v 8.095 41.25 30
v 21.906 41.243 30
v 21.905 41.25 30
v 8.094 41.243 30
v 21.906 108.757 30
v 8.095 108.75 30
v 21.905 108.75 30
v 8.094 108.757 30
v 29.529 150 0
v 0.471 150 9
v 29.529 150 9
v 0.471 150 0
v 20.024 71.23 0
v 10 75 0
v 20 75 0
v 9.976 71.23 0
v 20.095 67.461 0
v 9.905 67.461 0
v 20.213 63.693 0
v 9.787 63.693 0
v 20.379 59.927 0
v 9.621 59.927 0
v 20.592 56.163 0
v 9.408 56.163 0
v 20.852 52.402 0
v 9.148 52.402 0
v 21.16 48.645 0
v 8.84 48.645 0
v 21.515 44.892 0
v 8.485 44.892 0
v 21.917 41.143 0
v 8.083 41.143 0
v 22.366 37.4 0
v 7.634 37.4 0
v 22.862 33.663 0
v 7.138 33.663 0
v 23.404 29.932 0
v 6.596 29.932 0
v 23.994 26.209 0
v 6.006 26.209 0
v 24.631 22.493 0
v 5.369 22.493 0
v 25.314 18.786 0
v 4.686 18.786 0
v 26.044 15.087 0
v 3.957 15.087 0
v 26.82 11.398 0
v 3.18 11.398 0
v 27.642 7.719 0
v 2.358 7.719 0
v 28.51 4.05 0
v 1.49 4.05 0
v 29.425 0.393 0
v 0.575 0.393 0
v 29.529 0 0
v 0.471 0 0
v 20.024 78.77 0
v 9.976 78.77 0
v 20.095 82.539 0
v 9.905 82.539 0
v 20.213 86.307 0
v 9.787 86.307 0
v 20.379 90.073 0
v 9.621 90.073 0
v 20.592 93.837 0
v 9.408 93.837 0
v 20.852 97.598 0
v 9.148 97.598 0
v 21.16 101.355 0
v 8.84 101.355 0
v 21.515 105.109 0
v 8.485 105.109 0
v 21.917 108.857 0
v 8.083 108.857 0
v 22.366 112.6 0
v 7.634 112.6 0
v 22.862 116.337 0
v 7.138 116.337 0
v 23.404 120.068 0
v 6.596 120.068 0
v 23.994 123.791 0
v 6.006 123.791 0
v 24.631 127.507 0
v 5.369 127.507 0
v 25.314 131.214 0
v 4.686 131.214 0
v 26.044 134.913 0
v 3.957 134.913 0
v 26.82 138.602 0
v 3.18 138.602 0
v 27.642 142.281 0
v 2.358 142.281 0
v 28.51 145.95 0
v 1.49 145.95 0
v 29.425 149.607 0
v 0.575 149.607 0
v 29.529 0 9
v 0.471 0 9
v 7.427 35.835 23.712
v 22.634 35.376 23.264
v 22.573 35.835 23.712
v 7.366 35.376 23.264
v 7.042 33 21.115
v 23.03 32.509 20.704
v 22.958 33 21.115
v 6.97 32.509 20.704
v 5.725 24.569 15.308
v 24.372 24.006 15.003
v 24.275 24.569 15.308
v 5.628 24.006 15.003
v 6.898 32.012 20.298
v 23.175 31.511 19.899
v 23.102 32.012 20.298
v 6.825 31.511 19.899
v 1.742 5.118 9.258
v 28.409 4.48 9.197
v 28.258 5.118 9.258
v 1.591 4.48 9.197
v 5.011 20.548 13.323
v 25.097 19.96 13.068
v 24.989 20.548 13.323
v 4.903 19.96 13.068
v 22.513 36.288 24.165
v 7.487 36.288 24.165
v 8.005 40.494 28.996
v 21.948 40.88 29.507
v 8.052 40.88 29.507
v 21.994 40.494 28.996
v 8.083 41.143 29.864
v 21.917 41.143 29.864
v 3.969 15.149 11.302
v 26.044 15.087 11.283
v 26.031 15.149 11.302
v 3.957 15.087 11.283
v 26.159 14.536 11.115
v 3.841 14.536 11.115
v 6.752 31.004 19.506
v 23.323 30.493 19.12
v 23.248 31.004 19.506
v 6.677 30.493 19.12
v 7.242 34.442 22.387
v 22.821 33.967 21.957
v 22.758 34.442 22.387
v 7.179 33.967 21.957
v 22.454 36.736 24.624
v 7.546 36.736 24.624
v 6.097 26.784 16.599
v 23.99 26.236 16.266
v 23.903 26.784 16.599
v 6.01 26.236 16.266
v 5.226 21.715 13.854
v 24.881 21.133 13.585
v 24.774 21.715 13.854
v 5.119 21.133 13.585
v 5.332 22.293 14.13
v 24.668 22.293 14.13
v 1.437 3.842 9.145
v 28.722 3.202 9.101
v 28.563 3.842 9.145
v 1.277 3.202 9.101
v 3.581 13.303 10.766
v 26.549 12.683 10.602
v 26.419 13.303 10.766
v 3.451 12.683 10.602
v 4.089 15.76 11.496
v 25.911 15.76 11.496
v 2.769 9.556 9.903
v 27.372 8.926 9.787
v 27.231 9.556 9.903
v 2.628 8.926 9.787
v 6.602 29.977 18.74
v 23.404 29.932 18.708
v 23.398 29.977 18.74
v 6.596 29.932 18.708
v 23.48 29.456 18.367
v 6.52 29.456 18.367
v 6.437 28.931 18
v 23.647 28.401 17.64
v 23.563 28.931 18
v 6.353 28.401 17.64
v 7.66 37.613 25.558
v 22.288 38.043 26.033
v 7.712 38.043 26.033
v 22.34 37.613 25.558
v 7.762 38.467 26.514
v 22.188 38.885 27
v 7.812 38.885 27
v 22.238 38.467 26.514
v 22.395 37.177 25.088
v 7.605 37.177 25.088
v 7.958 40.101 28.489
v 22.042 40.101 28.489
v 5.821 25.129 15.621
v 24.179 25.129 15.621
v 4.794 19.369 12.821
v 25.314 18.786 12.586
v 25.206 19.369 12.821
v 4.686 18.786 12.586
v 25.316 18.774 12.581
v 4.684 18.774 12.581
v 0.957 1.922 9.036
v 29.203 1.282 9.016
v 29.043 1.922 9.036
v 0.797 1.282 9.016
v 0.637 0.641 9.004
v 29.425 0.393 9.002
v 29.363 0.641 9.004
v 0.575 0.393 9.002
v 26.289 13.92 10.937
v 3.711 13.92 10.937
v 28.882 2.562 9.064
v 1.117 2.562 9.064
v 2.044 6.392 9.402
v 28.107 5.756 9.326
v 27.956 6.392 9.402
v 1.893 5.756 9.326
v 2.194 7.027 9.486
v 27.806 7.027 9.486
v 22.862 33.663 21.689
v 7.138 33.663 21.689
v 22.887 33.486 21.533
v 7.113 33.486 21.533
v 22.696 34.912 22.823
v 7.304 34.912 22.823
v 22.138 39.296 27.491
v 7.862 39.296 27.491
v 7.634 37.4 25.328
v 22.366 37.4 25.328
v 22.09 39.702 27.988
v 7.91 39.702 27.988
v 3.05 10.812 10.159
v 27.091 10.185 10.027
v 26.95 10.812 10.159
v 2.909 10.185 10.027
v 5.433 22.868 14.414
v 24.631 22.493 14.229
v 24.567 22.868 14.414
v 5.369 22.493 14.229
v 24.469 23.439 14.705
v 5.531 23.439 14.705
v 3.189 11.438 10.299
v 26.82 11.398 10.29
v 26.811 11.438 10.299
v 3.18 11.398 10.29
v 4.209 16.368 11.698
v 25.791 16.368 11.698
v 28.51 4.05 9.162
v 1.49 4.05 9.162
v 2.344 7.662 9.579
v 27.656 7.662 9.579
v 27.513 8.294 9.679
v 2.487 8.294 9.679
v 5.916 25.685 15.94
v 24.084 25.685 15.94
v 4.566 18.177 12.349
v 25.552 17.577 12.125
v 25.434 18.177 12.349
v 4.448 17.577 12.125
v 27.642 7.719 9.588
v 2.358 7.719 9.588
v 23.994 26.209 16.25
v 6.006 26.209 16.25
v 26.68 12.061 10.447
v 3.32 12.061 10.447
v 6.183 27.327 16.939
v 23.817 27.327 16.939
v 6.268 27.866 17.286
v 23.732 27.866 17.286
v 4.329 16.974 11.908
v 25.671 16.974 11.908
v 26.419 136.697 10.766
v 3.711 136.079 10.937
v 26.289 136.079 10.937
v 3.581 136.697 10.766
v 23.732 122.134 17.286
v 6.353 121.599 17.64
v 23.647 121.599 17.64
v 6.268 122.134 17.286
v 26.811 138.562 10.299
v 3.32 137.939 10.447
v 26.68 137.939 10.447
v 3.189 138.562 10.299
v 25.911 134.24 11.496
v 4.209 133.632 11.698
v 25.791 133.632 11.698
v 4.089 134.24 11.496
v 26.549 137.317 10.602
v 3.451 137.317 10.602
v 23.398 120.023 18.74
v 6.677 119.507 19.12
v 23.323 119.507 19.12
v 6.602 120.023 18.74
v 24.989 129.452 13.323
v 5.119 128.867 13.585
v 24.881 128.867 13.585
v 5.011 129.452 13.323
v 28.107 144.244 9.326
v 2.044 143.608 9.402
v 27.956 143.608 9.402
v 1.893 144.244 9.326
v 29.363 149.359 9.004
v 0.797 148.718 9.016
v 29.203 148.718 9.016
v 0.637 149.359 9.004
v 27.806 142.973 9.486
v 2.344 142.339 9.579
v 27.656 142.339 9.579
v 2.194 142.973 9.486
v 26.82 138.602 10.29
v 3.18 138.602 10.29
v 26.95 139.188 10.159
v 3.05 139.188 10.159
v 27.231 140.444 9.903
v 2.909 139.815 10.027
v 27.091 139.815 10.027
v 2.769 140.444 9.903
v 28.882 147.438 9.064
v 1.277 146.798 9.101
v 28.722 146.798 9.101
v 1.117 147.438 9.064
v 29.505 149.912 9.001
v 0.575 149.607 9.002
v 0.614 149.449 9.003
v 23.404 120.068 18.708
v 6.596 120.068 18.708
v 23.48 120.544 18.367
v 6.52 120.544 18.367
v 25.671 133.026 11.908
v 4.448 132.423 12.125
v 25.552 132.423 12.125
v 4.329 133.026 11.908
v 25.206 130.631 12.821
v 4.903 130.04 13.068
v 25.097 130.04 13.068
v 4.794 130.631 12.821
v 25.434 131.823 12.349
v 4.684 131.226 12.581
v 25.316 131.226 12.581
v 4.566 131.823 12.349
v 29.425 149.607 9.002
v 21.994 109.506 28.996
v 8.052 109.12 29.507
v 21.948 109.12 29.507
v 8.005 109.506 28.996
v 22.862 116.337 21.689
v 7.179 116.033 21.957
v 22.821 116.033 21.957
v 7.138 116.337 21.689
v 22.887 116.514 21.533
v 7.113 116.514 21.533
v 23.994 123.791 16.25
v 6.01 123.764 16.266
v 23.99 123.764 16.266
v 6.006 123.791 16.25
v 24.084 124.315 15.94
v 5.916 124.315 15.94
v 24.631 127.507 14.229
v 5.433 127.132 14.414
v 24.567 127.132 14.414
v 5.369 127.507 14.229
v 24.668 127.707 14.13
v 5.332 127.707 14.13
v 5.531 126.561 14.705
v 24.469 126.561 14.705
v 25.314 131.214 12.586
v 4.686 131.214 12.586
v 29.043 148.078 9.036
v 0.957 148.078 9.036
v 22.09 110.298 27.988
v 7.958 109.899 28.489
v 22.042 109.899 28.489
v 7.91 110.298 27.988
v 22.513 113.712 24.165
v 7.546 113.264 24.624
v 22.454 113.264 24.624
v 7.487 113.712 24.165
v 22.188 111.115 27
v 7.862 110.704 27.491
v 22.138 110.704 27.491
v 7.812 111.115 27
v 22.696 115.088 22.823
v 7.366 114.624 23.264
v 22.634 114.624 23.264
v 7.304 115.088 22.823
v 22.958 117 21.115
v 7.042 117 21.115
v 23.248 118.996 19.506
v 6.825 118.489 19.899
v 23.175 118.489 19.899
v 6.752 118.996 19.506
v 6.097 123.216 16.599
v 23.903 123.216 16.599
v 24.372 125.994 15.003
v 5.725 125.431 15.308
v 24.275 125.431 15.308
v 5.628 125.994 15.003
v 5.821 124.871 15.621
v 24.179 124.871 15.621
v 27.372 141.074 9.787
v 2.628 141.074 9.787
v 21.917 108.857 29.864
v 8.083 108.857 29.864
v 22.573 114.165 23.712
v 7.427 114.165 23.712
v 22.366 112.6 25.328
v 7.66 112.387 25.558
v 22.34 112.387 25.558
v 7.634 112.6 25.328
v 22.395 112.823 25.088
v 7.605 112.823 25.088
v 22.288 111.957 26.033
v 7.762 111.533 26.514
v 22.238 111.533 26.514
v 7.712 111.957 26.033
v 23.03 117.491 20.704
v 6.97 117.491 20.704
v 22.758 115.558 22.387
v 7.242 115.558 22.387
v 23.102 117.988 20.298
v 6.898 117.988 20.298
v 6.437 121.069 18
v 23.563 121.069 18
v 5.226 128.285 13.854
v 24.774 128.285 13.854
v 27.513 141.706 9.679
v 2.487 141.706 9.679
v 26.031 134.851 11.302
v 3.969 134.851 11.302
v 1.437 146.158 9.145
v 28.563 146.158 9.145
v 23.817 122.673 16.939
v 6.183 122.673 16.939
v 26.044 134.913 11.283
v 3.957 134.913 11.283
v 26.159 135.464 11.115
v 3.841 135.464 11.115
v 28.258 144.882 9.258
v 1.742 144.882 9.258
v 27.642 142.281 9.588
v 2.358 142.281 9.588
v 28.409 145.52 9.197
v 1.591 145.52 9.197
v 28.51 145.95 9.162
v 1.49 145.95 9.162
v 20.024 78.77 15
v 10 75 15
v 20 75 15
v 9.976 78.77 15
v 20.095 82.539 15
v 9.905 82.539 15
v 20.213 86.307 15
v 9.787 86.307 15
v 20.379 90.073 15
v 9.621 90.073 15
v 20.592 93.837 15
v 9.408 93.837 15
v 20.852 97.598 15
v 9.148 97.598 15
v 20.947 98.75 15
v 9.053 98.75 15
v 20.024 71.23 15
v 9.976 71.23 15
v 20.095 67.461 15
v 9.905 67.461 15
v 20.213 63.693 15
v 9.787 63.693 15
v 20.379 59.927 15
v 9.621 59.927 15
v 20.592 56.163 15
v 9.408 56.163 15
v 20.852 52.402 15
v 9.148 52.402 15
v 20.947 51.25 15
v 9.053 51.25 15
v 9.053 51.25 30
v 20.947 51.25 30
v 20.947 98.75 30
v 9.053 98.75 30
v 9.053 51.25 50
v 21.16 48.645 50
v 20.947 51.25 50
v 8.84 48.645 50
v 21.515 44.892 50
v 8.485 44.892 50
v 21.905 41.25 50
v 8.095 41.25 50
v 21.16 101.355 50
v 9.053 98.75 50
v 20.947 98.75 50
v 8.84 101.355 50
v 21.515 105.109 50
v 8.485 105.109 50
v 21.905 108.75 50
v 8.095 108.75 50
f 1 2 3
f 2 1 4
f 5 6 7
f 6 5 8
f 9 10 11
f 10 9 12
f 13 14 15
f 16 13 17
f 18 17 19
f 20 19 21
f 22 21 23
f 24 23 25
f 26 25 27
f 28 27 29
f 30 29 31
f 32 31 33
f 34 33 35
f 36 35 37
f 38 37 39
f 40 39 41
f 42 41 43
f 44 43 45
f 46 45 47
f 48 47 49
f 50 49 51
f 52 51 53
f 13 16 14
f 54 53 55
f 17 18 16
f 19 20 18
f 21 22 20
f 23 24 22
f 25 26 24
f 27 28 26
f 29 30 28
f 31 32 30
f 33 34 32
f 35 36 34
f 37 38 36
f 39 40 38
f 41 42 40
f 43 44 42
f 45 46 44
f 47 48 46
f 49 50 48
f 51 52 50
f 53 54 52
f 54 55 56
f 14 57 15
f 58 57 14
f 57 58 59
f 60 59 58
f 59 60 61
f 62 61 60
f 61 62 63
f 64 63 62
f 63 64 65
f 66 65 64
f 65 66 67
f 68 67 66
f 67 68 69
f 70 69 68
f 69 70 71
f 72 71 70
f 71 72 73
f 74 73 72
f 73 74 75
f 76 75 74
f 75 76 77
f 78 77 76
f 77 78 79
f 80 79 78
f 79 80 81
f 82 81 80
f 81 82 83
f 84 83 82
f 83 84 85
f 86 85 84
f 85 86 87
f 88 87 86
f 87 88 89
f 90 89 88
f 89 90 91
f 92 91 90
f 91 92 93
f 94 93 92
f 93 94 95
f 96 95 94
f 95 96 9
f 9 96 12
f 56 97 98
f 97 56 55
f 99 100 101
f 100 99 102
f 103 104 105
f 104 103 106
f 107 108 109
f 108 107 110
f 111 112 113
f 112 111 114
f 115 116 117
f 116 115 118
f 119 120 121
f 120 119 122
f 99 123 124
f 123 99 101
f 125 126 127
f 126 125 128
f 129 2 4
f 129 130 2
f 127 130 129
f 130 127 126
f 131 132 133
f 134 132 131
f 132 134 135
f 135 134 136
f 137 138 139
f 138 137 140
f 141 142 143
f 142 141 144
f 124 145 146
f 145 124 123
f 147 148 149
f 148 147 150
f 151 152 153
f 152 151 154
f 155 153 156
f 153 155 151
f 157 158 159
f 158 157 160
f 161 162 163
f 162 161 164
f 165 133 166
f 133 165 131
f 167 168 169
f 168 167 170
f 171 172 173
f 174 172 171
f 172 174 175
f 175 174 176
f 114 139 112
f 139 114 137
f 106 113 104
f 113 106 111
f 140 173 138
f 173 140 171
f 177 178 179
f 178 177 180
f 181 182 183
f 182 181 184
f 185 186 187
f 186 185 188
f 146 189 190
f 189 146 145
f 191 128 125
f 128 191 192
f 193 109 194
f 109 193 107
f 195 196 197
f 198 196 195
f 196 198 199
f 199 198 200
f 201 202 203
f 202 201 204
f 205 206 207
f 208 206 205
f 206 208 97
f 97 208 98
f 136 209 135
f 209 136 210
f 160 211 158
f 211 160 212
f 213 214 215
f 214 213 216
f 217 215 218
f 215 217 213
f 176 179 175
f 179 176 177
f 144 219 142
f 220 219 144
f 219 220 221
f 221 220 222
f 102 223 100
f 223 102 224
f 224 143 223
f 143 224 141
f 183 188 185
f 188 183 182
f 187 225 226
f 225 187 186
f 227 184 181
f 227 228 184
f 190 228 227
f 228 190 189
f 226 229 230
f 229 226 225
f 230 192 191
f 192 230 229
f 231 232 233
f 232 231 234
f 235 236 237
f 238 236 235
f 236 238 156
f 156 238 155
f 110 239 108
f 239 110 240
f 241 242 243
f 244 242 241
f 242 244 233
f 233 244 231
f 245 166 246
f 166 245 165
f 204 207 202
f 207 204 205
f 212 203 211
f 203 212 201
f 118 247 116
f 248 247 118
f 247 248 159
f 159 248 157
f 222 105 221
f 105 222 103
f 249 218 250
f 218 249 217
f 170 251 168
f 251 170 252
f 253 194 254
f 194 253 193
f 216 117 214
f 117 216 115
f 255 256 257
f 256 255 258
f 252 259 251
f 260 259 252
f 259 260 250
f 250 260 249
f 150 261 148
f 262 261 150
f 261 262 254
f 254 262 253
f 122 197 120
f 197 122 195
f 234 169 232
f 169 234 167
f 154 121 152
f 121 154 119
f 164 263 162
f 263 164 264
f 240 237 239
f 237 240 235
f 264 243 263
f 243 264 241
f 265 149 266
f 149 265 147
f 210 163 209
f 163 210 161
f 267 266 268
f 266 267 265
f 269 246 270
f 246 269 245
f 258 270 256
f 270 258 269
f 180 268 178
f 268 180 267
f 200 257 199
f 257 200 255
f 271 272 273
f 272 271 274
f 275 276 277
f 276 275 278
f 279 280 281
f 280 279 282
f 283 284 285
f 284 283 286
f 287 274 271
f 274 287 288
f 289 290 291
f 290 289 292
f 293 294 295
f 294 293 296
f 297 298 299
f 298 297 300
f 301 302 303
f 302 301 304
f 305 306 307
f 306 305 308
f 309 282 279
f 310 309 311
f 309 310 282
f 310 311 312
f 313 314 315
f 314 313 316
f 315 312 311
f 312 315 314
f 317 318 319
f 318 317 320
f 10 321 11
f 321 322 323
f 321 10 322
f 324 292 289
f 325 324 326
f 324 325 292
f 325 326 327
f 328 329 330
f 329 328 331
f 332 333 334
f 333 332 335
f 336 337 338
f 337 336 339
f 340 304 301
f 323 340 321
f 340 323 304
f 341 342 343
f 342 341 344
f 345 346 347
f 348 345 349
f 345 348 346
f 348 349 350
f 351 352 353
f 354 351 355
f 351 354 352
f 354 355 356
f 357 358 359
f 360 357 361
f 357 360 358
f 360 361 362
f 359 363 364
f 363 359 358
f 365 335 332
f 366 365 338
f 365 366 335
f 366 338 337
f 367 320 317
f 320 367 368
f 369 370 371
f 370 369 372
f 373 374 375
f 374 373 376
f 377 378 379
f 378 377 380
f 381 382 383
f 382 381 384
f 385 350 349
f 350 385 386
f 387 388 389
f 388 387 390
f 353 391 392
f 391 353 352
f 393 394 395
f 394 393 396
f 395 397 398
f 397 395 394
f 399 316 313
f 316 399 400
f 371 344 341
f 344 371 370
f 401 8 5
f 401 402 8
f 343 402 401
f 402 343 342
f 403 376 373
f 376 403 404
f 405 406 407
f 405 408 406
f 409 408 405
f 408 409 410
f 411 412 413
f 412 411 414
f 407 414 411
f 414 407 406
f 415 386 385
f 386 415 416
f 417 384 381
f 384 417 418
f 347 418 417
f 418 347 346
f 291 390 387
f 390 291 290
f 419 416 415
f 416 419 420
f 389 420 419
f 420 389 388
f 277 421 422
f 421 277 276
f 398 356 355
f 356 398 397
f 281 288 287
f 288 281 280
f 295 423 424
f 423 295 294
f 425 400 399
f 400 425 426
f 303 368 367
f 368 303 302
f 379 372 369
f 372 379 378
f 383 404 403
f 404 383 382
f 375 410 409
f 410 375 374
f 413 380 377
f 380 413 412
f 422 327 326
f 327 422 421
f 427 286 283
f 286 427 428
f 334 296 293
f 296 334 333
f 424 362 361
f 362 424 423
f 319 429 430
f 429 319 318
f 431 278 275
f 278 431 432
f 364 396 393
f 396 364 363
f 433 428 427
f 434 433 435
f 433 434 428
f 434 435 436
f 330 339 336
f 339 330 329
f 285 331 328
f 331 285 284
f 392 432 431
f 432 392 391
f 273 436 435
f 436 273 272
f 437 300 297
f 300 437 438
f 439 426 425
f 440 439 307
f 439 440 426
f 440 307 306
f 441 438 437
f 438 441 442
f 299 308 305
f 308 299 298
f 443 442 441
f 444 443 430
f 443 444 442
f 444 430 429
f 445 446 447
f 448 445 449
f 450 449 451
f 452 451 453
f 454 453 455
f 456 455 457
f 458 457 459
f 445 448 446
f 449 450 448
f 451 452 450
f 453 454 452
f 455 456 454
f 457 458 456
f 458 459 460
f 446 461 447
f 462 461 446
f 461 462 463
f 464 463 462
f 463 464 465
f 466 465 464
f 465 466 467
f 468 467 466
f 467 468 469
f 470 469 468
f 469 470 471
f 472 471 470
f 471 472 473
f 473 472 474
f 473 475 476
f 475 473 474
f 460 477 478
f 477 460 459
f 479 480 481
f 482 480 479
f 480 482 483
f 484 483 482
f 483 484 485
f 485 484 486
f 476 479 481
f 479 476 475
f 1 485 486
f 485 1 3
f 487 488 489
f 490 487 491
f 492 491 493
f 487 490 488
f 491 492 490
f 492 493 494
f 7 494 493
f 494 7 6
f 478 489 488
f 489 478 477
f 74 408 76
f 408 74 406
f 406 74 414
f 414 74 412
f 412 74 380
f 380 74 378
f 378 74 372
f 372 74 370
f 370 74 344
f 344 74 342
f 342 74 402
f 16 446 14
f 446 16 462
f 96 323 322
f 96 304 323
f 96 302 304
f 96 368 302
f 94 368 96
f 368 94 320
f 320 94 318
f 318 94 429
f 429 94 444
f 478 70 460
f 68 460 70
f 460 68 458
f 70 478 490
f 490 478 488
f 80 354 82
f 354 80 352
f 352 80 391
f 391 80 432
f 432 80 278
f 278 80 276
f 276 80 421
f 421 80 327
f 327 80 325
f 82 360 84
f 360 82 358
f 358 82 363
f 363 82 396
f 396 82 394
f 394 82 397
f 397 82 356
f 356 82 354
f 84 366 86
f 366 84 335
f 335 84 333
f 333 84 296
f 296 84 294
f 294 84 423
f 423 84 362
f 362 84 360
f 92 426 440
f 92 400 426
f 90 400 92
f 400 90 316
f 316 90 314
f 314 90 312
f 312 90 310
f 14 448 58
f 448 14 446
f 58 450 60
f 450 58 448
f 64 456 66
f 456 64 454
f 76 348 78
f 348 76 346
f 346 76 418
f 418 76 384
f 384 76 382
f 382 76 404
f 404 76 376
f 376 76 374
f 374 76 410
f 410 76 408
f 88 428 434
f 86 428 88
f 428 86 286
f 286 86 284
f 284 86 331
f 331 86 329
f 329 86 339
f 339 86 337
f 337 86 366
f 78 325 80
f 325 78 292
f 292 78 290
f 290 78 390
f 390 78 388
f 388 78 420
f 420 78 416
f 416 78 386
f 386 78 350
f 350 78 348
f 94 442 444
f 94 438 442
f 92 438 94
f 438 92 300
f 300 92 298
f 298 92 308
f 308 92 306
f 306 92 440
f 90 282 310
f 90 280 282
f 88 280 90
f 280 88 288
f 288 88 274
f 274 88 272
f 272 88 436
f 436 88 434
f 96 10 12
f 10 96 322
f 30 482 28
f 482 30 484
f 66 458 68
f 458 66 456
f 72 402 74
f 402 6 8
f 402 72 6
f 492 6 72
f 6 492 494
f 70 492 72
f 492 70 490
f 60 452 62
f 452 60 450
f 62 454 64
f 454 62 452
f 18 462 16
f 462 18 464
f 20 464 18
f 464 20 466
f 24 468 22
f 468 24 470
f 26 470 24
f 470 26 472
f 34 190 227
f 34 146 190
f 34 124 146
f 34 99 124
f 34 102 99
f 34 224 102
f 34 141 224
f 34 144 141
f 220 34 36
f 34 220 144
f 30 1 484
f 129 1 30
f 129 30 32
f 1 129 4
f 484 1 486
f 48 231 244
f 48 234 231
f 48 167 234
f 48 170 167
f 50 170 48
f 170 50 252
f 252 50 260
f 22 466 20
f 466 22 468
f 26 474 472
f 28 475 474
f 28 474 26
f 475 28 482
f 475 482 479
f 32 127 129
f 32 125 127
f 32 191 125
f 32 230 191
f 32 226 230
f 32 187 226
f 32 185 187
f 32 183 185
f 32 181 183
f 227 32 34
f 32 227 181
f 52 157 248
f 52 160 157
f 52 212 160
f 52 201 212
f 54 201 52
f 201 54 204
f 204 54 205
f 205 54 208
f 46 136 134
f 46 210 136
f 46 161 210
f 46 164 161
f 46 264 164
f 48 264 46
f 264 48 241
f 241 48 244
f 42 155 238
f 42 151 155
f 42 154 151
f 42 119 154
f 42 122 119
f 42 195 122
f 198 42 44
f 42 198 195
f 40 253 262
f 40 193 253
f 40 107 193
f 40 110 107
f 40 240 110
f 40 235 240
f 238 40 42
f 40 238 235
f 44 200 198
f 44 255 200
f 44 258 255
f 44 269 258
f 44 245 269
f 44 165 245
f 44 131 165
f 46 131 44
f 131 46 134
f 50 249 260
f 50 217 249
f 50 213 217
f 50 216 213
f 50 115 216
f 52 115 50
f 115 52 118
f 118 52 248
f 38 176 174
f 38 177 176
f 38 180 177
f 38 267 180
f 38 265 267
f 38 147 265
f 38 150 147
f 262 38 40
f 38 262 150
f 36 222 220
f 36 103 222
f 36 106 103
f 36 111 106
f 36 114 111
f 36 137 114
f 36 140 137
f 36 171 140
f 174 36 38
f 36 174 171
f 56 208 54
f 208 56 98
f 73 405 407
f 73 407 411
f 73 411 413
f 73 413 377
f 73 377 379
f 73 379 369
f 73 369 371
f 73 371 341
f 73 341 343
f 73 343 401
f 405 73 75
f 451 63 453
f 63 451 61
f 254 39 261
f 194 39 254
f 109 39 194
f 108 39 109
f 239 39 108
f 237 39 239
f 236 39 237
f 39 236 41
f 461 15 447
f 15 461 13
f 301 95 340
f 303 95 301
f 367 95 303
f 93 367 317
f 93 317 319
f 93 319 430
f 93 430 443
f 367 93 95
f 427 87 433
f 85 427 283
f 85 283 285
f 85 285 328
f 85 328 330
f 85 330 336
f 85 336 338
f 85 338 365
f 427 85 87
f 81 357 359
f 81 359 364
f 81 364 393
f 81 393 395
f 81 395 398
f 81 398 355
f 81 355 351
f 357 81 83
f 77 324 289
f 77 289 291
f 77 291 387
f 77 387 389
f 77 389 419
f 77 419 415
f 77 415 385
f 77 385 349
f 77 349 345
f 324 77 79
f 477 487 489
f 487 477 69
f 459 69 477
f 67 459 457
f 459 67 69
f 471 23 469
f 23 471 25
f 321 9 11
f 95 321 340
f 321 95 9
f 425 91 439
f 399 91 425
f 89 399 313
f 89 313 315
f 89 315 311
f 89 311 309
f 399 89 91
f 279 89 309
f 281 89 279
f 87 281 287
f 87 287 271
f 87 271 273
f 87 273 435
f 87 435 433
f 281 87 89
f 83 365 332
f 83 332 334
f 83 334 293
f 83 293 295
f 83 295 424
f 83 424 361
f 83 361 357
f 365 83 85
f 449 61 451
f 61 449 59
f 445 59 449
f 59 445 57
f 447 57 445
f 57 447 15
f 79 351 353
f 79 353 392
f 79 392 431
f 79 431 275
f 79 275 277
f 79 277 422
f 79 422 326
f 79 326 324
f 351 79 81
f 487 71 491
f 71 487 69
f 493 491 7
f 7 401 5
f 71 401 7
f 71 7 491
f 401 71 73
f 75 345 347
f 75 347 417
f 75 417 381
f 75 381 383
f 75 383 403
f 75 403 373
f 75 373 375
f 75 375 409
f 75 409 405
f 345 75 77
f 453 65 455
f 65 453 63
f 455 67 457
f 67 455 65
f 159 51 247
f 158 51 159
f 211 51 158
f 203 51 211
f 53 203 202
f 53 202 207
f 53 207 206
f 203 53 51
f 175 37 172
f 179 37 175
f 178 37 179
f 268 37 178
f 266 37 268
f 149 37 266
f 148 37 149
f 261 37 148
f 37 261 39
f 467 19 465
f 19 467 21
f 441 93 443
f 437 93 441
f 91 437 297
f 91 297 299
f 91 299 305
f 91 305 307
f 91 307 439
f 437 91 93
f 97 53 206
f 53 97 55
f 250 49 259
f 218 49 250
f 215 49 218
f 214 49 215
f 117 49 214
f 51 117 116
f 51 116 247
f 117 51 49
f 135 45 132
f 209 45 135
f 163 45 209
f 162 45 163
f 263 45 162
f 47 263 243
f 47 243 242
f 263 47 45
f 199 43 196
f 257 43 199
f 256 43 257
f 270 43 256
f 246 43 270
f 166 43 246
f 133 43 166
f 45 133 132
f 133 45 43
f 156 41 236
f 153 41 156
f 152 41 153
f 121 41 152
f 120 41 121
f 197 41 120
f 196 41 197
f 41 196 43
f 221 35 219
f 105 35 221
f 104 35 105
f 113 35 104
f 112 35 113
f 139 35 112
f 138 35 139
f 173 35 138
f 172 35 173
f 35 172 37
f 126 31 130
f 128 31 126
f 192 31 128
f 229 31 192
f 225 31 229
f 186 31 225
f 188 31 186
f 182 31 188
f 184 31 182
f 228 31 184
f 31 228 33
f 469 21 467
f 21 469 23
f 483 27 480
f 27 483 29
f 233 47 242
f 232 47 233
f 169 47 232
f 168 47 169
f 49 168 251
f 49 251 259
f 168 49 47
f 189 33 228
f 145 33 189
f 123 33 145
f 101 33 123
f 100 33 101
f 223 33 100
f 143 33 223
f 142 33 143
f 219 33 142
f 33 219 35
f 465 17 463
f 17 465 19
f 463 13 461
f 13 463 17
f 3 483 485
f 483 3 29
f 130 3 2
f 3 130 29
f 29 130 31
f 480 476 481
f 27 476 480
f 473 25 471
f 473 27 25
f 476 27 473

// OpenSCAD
$fn=500;

module stand_base()
{
	cube([30,150,30]);
}

module stand_minus_slopes()
{
	difference()
	{
		stand_base();
		translate([-5,-0,60])
		slopes_cutout();
		translate([-5,150,60])
		slopes_cutout();
	}

}

module stand_minus_slopes_minus_frame()
{
	difference()
	{
		stand_minus_slopes();
		translate([-5,51.25,15])
		frame_cutout();
	}
}

module stand_complete()
{
	union()
	{
		stand_minus_slopes_minus_frame();
		translate([0,41.25,30])
		stand_riser();
		translate([0,98.75,30])
		stand_riser();
	}
}

module stand_cutaway()
{
	difference()
	{
		stand_complete();
		translate([-290,75,-5])
		cylinder_cutout();
		translate([320,75,-5])
		cylinder_cutout();
	}
}

module slopes_cutout()
{
	rotate([90,0,90])
	cylinder(r=51, h=40);
}

module frame_cutout()
{
	cube([40,47.5,50]);
}

module stand_riser()
{
	cube([30,10,20]);
}

module cylinder_cutout()
{
	cylinder(r=300,h=60);
}

stand_cutaway();

//translate([-290,75,-5])
//cylinder_cutout();
//translate([200,0,50])
//slopes_cutout();
//translate([100,0,0])
//frame_cutout();
//translate([-100,0,0])
//stand_riser();
